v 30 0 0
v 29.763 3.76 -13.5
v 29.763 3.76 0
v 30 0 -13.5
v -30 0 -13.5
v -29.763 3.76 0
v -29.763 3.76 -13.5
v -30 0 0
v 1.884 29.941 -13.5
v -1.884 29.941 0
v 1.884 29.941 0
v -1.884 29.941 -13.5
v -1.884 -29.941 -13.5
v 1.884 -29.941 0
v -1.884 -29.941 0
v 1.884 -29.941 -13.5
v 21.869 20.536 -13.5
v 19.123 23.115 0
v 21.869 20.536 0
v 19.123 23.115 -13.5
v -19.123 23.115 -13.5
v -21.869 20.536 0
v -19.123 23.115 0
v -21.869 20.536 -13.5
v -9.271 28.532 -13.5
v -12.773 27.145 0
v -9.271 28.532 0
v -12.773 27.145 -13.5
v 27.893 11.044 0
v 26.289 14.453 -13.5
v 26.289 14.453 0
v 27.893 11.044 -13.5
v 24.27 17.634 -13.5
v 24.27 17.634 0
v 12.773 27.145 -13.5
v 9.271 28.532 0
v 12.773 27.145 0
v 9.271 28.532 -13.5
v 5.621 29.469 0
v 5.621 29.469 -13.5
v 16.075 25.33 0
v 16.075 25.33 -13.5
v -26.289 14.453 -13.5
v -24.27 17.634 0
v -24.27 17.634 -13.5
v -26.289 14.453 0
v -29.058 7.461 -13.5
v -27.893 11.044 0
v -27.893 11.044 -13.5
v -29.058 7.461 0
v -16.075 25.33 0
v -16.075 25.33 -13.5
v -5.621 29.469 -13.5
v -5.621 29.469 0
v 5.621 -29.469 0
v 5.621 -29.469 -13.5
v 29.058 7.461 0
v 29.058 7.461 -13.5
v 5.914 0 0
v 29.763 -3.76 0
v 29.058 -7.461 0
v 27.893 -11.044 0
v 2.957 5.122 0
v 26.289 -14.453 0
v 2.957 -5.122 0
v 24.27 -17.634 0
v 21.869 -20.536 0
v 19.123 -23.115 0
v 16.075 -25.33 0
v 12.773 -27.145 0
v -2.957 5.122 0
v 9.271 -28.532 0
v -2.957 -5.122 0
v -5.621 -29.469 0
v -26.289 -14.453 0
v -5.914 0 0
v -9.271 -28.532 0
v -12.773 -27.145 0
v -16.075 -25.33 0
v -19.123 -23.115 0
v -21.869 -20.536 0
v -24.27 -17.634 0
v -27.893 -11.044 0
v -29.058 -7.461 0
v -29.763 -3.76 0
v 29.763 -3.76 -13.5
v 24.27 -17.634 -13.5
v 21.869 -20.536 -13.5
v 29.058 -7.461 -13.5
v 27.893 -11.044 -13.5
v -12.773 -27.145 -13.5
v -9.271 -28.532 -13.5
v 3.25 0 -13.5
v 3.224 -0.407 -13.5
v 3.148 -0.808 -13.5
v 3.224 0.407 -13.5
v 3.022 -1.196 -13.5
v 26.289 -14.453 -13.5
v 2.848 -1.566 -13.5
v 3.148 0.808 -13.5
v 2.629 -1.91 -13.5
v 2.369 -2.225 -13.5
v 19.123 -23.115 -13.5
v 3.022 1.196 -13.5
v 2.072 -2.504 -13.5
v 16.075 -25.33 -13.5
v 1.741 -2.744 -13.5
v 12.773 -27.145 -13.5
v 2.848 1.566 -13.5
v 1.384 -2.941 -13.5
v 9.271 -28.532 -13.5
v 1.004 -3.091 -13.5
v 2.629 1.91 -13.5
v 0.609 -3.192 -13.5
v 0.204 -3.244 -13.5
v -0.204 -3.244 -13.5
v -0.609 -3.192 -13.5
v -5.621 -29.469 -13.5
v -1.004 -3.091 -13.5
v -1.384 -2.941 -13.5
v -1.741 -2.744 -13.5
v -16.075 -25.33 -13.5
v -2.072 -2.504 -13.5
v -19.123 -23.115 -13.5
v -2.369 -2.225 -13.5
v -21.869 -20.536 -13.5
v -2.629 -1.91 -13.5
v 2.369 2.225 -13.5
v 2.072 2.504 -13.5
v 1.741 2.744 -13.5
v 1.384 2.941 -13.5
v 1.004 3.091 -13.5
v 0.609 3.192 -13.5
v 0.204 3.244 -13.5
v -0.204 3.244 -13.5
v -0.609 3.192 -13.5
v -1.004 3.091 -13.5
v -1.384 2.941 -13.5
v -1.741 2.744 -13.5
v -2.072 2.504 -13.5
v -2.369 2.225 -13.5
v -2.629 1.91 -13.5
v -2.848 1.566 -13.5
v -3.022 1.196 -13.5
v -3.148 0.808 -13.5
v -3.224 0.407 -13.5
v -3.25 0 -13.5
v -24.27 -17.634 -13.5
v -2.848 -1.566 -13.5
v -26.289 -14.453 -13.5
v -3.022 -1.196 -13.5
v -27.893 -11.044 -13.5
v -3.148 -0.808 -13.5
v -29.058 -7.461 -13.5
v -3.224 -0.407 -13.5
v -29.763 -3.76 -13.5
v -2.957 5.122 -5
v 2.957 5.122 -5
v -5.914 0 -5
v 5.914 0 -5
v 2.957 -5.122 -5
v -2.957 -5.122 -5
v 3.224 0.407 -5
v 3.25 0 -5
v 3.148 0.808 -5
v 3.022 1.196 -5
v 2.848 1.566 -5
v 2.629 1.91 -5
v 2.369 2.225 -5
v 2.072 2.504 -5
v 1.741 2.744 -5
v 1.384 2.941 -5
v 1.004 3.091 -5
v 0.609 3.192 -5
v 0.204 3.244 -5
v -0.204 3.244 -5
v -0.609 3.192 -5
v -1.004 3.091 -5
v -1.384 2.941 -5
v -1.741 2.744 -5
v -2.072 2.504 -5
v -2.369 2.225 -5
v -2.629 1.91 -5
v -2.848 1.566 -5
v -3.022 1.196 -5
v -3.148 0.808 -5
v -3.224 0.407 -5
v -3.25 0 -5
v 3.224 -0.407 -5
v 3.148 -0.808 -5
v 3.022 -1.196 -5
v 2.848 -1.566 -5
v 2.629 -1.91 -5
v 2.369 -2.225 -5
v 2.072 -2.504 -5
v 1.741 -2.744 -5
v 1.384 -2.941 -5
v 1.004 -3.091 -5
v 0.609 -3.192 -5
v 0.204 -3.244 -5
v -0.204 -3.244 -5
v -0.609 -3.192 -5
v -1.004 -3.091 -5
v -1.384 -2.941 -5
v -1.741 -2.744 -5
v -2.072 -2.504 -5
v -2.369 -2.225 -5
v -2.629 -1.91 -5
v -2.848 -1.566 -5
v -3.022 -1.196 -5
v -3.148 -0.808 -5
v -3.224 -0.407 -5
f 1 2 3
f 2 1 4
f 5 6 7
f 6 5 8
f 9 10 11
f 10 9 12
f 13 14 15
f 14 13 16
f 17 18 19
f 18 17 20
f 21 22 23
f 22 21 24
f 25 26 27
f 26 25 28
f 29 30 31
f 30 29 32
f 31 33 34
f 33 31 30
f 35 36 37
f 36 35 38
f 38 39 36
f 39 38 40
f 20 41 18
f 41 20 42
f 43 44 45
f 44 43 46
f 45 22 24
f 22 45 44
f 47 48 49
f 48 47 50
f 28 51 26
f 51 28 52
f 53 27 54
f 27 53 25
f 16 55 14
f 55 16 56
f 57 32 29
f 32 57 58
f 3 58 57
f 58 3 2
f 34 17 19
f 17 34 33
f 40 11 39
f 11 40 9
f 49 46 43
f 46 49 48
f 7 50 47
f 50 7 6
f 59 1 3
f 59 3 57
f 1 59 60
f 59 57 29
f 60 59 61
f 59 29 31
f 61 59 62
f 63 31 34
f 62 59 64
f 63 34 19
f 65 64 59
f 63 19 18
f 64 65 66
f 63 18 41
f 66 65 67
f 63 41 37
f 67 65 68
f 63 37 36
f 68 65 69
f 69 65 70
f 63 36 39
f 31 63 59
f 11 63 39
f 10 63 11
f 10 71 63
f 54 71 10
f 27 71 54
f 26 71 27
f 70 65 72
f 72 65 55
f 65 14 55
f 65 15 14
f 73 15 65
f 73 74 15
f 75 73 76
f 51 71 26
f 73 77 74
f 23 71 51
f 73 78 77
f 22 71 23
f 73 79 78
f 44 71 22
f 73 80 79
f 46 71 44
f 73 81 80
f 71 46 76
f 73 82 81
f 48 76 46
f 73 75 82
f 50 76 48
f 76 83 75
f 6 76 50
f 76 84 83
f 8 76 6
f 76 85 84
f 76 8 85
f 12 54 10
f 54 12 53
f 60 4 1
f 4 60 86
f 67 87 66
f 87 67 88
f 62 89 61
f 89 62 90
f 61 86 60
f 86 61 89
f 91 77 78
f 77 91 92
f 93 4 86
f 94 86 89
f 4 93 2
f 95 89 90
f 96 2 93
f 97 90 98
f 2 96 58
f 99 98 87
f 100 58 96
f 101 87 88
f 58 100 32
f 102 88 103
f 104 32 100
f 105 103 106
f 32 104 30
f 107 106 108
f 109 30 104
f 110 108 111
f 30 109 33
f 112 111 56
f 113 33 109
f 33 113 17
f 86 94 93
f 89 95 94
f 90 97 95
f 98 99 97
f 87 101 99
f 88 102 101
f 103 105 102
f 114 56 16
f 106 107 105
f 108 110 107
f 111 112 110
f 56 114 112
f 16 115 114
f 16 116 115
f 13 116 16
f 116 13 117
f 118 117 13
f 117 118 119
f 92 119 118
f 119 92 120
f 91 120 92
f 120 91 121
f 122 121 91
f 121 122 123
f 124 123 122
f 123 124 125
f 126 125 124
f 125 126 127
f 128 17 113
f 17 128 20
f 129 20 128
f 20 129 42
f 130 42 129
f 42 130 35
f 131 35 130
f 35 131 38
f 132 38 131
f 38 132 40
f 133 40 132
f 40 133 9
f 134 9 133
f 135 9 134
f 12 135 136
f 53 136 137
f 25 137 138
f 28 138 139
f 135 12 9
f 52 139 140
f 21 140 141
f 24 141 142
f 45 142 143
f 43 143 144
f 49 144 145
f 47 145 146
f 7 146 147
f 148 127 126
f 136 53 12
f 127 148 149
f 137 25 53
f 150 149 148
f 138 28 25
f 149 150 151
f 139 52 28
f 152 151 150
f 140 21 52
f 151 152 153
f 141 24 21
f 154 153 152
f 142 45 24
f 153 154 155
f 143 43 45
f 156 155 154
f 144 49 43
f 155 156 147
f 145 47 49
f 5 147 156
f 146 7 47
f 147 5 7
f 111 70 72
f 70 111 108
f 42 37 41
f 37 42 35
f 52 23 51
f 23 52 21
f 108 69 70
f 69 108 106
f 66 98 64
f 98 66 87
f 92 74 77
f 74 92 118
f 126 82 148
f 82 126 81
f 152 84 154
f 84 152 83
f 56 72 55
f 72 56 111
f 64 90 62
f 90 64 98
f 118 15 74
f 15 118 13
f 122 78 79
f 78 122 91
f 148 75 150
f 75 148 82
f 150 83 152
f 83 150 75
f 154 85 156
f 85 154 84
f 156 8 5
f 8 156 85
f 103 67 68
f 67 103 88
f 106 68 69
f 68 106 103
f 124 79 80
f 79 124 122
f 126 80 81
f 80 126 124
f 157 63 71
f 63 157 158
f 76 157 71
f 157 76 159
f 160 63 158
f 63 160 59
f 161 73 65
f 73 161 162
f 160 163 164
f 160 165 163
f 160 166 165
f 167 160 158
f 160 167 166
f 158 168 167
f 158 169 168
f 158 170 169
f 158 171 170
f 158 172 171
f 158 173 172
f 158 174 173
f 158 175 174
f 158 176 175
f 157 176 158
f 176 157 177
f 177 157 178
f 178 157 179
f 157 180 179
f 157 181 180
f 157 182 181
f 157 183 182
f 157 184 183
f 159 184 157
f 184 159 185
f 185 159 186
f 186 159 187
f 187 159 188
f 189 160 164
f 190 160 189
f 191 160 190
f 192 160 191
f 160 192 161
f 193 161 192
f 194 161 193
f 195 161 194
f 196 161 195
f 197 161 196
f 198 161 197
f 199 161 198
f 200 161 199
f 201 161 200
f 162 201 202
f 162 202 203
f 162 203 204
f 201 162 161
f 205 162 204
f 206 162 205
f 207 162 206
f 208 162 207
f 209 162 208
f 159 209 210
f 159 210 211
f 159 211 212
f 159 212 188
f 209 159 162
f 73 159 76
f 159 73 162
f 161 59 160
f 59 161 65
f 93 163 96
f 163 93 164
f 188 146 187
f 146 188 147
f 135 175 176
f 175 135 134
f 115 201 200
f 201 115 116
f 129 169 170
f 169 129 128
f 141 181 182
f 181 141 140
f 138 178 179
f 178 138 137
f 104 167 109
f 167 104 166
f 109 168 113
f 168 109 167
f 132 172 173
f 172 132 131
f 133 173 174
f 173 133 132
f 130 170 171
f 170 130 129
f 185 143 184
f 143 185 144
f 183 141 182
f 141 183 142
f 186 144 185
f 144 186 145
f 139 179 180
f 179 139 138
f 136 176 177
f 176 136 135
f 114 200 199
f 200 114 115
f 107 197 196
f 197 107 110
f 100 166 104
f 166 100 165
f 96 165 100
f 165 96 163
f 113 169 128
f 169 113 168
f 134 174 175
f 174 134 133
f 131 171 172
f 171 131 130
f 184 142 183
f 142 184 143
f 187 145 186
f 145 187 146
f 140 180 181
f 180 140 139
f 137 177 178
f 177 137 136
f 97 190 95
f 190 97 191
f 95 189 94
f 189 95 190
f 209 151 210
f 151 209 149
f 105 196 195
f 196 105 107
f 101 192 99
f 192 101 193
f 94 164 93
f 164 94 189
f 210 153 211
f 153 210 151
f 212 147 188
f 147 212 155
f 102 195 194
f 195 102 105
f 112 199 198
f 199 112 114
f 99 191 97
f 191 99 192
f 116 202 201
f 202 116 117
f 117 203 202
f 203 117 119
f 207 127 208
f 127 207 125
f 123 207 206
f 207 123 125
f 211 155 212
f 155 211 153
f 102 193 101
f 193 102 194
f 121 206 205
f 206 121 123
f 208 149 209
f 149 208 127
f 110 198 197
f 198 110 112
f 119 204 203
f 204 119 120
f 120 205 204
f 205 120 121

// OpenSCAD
$fn = 50;


difference() {
	union() {
		translate(v = [0, 0, -13.5000000000]) {
			cylinder(h = 13.5000000000, r = 30.0000000000);
		}
		translate(v = [0, 0, -12.0000000000]) {
			cylinder(h = 12, r = 2.8750000000);
		}
	}
	union() {
		translate(v = [0, 0, 0]) {
			rotate(a = [0, 0, 0]) {
				difference() {
					union() {
						translate(v = [0, 0, -5]) {
							linear_extrude(height = 5) {
								polygon(points = [[5.9142500000, 0.0000000000], [2.9571250000, 5.1218907443], [-2.9571250000, 5.1218907443], [-5.9142500000, 0.0000000000], [-2.9571250000, -5.1218907443], [2.9571250000, -5.1218907443]]);
							}
						}
					}
					union();
				}
			}
		}
		#translate(v = [0, 0, -100.0000000000]) {
			cylinder(h = 200, r = 3.2500000000);
		}
	}
}
